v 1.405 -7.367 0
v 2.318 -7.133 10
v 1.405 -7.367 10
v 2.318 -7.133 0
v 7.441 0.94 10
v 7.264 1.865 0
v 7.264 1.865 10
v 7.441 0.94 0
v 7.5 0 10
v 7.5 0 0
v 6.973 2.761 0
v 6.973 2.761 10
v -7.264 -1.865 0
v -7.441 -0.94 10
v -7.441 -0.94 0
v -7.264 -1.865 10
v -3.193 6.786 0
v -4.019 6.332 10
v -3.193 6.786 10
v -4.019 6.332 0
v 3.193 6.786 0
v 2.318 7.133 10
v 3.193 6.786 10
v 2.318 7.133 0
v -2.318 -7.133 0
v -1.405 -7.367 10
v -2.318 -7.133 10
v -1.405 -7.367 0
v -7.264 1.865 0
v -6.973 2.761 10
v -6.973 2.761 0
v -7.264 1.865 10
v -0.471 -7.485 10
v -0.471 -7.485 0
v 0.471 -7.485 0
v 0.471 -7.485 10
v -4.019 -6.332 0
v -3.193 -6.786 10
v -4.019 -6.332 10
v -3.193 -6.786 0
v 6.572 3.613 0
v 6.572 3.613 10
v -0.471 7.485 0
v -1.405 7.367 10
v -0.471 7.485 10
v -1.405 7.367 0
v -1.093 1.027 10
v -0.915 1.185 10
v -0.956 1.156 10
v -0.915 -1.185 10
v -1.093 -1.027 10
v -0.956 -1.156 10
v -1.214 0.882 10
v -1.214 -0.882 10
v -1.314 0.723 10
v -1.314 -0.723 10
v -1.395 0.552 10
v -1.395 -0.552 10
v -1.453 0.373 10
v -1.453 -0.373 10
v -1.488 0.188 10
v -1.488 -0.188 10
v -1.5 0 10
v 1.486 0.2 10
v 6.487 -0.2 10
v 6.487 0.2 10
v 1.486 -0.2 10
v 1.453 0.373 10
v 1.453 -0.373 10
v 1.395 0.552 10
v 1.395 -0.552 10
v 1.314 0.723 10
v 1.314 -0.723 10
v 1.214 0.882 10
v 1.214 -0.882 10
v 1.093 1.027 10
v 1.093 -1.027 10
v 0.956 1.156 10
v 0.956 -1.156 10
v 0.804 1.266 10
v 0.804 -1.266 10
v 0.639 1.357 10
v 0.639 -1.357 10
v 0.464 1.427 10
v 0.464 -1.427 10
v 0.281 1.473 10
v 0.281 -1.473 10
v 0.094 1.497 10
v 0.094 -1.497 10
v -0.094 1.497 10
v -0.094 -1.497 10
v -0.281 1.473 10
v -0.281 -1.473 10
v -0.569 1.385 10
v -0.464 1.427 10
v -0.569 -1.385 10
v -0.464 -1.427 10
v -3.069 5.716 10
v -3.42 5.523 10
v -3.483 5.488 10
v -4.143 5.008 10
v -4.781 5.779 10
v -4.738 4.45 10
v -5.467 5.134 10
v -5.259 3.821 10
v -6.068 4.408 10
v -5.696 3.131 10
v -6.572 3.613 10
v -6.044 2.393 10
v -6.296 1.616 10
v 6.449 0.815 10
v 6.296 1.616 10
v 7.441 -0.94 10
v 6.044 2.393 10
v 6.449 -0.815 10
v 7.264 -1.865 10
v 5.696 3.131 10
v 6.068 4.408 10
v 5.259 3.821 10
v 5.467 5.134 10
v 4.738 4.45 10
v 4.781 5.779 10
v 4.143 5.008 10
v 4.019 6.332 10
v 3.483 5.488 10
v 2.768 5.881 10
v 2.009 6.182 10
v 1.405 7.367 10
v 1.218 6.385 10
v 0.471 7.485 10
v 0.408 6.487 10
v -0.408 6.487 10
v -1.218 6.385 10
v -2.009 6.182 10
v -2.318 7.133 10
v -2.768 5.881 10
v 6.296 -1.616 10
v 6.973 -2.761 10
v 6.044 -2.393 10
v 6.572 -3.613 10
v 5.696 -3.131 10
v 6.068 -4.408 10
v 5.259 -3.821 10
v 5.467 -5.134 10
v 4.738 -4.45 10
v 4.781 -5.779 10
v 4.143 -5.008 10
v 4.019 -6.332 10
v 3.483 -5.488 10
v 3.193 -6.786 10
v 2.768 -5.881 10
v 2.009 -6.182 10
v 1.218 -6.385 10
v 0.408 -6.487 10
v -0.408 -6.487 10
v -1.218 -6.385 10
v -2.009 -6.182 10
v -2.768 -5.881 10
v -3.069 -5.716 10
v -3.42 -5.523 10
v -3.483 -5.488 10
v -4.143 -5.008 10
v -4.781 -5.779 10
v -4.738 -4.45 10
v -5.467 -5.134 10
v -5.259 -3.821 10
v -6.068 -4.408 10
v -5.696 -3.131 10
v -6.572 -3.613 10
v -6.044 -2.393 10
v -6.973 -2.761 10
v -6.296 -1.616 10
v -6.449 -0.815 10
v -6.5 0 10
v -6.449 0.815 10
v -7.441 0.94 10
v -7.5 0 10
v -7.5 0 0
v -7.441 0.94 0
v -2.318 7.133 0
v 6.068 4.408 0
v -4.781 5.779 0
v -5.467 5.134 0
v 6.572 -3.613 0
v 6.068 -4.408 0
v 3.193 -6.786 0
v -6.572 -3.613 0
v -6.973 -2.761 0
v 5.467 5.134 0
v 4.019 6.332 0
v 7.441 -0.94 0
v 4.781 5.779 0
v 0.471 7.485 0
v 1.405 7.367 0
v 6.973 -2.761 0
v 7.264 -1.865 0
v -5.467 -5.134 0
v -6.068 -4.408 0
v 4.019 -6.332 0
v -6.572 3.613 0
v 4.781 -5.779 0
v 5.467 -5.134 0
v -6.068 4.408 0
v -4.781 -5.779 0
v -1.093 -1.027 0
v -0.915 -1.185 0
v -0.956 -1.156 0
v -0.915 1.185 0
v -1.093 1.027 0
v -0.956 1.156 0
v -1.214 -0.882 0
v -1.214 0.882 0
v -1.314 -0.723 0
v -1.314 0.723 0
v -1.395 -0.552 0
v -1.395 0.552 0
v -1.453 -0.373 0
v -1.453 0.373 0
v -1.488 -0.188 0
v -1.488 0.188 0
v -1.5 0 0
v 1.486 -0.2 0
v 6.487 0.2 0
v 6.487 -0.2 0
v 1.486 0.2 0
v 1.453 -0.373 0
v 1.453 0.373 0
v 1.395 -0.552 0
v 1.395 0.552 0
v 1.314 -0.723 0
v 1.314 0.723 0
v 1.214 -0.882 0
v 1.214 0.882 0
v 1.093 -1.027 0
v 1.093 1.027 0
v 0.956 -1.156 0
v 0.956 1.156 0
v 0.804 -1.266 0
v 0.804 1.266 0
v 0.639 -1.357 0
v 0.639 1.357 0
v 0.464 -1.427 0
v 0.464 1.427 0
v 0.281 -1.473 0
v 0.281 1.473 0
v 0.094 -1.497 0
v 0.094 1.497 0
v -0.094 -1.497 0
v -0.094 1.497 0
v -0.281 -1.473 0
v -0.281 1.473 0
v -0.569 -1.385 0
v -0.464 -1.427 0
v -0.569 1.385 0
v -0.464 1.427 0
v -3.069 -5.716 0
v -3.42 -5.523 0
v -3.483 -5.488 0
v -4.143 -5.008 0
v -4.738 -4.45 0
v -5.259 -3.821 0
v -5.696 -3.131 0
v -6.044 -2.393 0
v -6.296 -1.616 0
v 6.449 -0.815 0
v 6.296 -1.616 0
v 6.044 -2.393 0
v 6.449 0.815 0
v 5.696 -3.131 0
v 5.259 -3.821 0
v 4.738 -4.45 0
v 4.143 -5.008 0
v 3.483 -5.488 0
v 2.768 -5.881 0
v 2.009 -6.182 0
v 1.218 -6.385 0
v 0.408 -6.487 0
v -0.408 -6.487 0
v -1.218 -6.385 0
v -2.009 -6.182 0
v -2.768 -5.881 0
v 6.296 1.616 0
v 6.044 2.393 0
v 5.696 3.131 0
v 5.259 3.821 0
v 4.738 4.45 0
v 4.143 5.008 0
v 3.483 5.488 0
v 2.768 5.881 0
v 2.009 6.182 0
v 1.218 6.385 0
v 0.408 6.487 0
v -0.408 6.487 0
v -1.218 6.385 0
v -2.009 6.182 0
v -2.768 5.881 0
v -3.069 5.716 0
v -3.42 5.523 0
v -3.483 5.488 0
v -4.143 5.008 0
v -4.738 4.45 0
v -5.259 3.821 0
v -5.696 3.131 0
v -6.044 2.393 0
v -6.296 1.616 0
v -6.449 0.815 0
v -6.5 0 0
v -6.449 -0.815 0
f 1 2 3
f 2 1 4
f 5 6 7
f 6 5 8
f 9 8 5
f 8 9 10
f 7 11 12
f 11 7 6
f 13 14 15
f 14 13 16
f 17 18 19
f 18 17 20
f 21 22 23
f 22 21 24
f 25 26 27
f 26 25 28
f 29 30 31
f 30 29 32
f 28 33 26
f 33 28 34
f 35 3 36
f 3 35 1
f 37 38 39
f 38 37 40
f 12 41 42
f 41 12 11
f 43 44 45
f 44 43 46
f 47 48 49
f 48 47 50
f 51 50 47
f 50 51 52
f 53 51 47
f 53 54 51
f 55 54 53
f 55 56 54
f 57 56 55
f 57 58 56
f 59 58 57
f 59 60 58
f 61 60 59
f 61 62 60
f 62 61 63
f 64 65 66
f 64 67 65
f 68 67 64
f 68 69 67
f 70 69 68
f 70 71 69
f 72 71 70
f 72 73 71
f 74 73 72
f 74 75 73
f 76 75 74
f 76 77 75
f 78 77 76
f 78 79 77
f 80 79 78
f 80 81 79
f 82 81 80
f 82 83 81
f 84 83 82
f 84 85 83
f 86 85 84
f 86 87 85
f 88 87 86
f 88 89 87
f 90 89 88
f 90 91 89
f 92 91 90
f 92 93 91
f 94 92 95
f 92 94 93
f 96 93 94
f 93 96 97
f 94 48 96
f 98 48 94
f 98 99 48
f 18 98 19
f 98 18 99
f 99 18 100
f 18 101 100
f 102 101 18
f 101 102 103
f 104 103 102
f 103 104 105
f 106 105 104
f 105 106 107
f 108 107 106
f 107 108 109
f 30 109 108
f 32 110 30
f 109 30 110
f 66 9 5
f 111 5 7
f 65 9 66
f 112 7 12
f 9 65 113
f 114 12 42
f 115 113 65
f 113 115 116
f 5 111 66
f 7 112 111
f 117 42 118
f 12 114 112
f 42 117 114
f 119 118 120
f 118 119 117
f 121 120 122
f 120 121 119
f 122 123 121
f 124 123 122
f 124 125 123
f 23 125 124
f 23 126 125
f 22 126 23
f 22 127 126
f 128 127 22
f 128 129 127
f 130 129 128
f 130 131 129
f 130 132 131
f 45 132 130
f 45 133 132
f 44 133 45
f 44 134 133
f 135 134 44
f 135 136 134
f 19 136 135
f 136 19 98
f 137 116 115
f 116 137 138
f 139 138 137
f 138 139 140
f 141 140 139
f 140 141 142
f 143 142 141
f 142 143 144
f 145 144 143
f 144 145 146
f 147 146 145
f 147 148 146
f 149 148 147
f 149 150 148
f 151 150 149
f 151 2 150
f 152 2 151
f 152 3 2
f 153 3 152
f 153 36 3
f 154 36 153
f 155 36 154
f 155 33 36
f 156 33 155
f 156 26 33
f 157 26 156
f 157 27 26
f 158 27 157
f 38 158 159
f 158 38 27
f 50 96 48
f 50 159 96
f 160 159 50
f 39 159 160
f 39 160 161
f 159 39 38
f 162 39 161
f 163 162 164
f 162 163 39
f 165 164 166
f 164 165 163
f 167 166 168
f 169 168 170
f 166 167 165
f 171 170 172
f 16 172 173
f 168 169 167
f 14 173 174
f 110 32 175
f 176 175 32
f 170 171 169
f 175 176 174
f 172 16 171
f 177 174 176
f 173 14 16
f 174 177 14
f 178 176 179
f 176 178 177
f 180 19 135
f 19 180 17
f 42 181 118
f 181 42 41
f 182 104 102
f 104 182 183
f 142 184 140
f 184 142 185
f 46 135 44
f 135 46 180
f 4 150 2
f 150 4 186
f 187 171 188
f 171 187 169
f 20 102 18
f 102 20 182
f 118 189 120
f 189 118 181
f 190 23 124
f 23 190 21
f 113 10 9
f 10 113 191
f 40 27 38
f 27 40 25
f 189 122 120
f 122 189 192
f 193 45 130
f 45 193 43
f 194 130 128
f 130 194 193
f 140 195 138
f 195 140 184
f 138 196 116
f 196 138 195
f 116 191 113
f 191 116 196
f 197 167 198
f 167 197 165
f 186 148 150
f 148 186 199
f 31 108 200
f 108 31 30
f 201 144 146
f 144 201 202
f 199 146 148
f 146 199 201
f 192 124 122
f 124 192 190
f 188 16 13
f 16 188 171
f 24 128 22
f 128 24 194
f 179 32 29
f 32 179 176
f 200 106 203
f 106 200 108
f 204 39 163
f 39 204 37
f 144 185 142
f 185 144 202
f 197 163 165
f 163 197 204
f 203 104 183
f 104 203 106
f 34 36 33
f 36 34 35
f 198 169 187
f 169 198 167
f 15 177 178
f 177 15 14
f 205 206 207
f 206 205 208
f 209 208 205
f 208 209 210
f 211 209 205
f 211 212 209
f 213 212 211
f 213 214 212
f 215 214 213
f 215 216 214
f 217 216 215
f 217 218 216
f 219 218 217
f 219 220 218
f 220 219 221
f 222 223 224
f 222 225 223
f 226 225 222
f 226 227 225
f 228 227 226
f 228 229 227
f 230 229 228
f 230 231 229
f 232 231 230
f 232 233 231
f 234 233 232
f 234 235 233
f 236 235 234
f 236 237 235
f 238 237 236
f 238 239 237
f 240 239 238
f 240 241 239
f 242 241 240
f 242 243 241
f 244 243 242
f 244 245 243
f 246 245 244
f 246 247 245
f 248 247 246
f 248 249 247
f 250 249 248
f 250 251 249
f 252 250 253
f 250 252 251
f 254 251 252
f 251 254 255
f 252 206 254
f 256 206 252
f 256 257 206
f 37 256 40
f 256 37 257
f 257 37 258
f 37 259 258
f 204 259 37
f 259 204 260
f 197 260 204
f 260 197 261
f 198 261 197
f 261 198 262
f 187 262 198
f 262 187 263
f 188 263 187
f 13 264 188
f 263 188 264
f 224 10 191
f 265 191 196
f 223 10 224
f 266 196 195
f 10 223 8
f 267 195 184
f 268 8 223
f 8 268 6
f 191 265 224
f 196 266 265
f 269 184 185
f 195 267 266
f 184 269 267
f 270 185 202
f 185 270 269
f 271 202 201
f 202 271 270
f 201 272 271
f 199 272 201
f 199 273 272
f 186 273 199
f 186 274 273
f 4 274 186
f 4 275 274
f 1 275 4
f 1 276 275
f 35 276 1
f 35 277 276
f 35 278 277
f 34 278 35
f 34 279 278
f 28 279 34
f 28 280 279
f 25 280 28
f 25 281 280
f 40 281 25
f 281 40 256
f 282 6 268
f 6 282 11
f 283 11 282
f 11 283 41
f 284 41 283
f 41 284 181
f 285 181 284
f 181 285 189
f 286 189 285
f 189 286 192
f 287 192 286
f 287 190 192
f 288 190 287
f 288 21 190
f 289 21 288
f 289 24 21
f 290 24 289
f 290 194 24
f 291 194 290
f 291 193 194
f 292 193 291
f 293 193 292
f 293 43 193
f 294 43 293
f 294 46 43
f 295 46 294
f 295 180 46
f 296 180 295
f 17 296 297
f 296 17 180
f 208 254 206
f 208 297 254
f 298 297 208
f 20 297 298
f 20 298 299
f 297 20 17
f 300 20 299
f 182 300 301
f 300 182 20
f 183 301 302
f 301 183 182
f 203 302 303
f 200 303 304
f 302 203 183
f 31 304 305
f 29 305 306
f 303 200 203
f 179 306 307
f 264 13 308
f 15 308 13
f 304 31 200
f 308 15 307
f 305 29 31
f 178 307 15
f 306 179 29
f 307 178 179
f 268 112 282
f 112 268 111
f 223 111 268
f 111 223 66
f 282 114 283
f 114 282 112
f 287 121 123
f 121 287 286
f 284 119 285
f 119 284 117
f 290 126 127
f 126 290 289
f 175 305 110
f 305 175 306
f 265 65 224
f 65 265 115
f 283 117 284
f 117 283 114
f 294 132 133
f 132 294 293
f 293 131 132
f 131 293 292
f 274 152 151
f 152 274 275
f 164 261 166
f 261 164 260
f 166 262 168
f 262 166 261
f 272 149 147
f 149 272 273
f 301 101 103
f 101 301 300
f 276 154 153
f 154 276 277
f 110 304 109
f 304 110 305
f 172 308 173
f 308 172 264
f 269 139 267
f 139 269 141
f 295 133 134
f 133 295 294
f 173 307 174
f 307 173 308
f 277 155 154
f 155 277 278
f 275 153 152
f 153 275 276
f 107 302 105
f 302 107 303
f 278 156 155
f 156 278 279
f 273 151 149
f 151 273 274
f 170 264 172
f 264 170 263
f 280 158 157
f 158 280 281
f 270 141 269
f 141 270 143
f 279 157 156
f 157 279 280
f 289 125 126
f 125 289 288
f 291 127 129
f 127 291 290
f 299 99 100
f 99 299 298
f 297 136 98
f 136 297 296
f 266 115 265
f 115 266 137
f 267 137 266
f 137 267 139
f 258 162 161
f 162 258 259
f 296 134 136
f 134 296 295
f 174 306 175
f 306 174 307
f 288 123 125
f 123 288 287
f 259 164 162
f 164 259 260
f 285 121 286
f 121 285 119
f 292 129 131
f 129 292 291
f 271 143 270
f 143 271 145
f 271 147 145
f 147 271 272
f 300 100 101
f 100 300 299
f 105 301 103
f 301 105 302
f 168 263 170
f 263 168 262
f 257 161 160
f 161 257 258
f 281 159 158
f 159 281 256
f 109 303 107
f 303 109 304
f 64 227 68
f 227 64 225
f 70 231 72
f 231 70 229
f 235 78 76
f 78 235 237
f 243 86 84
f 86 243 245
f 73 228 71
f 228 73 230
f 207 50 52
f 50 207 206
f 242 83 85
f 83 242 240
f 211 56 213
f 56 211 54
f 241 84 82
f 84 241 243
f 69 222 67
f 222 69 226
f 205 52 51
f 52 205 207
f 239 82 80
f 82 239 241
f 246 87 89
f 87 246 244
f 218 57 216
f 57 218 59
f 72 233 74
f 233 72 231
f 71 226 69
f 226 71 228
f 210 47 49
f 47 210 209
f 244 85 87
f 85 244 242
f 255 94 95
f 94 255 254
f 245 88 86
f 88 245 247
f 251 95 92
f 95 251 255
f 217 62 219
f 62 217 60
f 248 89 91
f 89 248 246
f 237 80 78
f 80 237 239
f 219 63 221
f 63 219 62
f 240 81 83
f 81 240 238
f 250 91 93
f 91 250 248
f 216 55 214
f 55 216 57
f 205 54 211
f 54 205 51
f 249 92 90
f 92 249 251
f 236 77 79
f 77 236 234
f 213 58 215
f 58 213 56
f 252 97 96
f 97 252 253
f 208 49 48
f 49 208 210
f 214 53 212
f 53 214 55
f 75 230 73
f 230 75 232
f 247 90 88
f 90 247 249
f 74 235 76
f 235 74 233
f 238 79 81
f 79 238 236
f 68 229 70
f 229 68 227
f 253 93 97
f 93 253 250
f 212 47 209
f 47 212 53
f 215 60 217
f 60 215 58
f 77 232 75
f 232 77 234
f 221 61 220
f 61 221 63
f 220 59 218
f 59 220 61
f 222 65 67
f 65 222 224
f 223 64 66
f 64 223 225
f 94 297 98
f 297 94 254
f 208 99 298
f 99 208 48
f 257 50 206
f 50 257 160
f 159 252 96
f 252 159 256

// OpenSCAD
/* [ Miscellanious ] */
// Resolution for circular patterns
resolution = 50; // [30, 50, 100]
$fn = resolution;


/* [ Microstructure ] */
// Core diameter
core_diameter = 3;
// Suspension diameter
susp_diameter = 0.4;
// Number of suspenders
N_susp = 3;


/* [ Outer Structure ] */
// Shell inner diameter
s_inner_diameter = 13;
// Shell outer diameter
s_outer_diameter = 15;
// Preform length
preform_length = 10;


susp_len = (s_inner_diameter - core_diameter)/2;


module core(){
    cylinder(preform_length, d=core_diameter);
}


module shell(){
    difference(){
        cylinder(preform_length, d=s_outer_diameter);
        cylinder(preform_length, d=s_inner_diameter);
    }
}


module suspender(){
    translate([core_diameter/2,0,0])
        rotate([0, 90-susp_angle, 0])
            translate([-susp_diameter/2,0,0])
                cylinder(suspender_length, d=susp_diameter);
}


module anti_suspender(){
    translate([s_inner_diameter/2,0,-suspender_height])
        rotate([0, susp_angle-90, 0])
            translate([susp_diameter/2,0,0])
                cylinder(suspender_length, d=susp_diameter);
}


module suspension(N=3){
    assert(N>0, "Number of suspenders must be at least 1");
    
    union(){
        for(i=[1:N], theta=360*i/N){
            rotate([0,0,theta])
                suspender();
        }
    }
}


module suspensions(){
    
    linear_extrude(preform_length) union(){
        for(i=[1:N_susp], t=360*i/N_susp){
            rotate([0,0,t]) translate([0,-susp_diameter/2,0])
                square([s_inner_diameter/2, susp_diameter]);
        }
    }
}



module structure(){
    union(){
        core();
        #shell();
    }
}




union(){
    structure();
    intersection(){
        difference(){
            cylinder(h=preform_length, d=s_inner_diameter);
            cylinder(h=preform_length, d=core_diameter);
        }
        suspensions();
    }
}
